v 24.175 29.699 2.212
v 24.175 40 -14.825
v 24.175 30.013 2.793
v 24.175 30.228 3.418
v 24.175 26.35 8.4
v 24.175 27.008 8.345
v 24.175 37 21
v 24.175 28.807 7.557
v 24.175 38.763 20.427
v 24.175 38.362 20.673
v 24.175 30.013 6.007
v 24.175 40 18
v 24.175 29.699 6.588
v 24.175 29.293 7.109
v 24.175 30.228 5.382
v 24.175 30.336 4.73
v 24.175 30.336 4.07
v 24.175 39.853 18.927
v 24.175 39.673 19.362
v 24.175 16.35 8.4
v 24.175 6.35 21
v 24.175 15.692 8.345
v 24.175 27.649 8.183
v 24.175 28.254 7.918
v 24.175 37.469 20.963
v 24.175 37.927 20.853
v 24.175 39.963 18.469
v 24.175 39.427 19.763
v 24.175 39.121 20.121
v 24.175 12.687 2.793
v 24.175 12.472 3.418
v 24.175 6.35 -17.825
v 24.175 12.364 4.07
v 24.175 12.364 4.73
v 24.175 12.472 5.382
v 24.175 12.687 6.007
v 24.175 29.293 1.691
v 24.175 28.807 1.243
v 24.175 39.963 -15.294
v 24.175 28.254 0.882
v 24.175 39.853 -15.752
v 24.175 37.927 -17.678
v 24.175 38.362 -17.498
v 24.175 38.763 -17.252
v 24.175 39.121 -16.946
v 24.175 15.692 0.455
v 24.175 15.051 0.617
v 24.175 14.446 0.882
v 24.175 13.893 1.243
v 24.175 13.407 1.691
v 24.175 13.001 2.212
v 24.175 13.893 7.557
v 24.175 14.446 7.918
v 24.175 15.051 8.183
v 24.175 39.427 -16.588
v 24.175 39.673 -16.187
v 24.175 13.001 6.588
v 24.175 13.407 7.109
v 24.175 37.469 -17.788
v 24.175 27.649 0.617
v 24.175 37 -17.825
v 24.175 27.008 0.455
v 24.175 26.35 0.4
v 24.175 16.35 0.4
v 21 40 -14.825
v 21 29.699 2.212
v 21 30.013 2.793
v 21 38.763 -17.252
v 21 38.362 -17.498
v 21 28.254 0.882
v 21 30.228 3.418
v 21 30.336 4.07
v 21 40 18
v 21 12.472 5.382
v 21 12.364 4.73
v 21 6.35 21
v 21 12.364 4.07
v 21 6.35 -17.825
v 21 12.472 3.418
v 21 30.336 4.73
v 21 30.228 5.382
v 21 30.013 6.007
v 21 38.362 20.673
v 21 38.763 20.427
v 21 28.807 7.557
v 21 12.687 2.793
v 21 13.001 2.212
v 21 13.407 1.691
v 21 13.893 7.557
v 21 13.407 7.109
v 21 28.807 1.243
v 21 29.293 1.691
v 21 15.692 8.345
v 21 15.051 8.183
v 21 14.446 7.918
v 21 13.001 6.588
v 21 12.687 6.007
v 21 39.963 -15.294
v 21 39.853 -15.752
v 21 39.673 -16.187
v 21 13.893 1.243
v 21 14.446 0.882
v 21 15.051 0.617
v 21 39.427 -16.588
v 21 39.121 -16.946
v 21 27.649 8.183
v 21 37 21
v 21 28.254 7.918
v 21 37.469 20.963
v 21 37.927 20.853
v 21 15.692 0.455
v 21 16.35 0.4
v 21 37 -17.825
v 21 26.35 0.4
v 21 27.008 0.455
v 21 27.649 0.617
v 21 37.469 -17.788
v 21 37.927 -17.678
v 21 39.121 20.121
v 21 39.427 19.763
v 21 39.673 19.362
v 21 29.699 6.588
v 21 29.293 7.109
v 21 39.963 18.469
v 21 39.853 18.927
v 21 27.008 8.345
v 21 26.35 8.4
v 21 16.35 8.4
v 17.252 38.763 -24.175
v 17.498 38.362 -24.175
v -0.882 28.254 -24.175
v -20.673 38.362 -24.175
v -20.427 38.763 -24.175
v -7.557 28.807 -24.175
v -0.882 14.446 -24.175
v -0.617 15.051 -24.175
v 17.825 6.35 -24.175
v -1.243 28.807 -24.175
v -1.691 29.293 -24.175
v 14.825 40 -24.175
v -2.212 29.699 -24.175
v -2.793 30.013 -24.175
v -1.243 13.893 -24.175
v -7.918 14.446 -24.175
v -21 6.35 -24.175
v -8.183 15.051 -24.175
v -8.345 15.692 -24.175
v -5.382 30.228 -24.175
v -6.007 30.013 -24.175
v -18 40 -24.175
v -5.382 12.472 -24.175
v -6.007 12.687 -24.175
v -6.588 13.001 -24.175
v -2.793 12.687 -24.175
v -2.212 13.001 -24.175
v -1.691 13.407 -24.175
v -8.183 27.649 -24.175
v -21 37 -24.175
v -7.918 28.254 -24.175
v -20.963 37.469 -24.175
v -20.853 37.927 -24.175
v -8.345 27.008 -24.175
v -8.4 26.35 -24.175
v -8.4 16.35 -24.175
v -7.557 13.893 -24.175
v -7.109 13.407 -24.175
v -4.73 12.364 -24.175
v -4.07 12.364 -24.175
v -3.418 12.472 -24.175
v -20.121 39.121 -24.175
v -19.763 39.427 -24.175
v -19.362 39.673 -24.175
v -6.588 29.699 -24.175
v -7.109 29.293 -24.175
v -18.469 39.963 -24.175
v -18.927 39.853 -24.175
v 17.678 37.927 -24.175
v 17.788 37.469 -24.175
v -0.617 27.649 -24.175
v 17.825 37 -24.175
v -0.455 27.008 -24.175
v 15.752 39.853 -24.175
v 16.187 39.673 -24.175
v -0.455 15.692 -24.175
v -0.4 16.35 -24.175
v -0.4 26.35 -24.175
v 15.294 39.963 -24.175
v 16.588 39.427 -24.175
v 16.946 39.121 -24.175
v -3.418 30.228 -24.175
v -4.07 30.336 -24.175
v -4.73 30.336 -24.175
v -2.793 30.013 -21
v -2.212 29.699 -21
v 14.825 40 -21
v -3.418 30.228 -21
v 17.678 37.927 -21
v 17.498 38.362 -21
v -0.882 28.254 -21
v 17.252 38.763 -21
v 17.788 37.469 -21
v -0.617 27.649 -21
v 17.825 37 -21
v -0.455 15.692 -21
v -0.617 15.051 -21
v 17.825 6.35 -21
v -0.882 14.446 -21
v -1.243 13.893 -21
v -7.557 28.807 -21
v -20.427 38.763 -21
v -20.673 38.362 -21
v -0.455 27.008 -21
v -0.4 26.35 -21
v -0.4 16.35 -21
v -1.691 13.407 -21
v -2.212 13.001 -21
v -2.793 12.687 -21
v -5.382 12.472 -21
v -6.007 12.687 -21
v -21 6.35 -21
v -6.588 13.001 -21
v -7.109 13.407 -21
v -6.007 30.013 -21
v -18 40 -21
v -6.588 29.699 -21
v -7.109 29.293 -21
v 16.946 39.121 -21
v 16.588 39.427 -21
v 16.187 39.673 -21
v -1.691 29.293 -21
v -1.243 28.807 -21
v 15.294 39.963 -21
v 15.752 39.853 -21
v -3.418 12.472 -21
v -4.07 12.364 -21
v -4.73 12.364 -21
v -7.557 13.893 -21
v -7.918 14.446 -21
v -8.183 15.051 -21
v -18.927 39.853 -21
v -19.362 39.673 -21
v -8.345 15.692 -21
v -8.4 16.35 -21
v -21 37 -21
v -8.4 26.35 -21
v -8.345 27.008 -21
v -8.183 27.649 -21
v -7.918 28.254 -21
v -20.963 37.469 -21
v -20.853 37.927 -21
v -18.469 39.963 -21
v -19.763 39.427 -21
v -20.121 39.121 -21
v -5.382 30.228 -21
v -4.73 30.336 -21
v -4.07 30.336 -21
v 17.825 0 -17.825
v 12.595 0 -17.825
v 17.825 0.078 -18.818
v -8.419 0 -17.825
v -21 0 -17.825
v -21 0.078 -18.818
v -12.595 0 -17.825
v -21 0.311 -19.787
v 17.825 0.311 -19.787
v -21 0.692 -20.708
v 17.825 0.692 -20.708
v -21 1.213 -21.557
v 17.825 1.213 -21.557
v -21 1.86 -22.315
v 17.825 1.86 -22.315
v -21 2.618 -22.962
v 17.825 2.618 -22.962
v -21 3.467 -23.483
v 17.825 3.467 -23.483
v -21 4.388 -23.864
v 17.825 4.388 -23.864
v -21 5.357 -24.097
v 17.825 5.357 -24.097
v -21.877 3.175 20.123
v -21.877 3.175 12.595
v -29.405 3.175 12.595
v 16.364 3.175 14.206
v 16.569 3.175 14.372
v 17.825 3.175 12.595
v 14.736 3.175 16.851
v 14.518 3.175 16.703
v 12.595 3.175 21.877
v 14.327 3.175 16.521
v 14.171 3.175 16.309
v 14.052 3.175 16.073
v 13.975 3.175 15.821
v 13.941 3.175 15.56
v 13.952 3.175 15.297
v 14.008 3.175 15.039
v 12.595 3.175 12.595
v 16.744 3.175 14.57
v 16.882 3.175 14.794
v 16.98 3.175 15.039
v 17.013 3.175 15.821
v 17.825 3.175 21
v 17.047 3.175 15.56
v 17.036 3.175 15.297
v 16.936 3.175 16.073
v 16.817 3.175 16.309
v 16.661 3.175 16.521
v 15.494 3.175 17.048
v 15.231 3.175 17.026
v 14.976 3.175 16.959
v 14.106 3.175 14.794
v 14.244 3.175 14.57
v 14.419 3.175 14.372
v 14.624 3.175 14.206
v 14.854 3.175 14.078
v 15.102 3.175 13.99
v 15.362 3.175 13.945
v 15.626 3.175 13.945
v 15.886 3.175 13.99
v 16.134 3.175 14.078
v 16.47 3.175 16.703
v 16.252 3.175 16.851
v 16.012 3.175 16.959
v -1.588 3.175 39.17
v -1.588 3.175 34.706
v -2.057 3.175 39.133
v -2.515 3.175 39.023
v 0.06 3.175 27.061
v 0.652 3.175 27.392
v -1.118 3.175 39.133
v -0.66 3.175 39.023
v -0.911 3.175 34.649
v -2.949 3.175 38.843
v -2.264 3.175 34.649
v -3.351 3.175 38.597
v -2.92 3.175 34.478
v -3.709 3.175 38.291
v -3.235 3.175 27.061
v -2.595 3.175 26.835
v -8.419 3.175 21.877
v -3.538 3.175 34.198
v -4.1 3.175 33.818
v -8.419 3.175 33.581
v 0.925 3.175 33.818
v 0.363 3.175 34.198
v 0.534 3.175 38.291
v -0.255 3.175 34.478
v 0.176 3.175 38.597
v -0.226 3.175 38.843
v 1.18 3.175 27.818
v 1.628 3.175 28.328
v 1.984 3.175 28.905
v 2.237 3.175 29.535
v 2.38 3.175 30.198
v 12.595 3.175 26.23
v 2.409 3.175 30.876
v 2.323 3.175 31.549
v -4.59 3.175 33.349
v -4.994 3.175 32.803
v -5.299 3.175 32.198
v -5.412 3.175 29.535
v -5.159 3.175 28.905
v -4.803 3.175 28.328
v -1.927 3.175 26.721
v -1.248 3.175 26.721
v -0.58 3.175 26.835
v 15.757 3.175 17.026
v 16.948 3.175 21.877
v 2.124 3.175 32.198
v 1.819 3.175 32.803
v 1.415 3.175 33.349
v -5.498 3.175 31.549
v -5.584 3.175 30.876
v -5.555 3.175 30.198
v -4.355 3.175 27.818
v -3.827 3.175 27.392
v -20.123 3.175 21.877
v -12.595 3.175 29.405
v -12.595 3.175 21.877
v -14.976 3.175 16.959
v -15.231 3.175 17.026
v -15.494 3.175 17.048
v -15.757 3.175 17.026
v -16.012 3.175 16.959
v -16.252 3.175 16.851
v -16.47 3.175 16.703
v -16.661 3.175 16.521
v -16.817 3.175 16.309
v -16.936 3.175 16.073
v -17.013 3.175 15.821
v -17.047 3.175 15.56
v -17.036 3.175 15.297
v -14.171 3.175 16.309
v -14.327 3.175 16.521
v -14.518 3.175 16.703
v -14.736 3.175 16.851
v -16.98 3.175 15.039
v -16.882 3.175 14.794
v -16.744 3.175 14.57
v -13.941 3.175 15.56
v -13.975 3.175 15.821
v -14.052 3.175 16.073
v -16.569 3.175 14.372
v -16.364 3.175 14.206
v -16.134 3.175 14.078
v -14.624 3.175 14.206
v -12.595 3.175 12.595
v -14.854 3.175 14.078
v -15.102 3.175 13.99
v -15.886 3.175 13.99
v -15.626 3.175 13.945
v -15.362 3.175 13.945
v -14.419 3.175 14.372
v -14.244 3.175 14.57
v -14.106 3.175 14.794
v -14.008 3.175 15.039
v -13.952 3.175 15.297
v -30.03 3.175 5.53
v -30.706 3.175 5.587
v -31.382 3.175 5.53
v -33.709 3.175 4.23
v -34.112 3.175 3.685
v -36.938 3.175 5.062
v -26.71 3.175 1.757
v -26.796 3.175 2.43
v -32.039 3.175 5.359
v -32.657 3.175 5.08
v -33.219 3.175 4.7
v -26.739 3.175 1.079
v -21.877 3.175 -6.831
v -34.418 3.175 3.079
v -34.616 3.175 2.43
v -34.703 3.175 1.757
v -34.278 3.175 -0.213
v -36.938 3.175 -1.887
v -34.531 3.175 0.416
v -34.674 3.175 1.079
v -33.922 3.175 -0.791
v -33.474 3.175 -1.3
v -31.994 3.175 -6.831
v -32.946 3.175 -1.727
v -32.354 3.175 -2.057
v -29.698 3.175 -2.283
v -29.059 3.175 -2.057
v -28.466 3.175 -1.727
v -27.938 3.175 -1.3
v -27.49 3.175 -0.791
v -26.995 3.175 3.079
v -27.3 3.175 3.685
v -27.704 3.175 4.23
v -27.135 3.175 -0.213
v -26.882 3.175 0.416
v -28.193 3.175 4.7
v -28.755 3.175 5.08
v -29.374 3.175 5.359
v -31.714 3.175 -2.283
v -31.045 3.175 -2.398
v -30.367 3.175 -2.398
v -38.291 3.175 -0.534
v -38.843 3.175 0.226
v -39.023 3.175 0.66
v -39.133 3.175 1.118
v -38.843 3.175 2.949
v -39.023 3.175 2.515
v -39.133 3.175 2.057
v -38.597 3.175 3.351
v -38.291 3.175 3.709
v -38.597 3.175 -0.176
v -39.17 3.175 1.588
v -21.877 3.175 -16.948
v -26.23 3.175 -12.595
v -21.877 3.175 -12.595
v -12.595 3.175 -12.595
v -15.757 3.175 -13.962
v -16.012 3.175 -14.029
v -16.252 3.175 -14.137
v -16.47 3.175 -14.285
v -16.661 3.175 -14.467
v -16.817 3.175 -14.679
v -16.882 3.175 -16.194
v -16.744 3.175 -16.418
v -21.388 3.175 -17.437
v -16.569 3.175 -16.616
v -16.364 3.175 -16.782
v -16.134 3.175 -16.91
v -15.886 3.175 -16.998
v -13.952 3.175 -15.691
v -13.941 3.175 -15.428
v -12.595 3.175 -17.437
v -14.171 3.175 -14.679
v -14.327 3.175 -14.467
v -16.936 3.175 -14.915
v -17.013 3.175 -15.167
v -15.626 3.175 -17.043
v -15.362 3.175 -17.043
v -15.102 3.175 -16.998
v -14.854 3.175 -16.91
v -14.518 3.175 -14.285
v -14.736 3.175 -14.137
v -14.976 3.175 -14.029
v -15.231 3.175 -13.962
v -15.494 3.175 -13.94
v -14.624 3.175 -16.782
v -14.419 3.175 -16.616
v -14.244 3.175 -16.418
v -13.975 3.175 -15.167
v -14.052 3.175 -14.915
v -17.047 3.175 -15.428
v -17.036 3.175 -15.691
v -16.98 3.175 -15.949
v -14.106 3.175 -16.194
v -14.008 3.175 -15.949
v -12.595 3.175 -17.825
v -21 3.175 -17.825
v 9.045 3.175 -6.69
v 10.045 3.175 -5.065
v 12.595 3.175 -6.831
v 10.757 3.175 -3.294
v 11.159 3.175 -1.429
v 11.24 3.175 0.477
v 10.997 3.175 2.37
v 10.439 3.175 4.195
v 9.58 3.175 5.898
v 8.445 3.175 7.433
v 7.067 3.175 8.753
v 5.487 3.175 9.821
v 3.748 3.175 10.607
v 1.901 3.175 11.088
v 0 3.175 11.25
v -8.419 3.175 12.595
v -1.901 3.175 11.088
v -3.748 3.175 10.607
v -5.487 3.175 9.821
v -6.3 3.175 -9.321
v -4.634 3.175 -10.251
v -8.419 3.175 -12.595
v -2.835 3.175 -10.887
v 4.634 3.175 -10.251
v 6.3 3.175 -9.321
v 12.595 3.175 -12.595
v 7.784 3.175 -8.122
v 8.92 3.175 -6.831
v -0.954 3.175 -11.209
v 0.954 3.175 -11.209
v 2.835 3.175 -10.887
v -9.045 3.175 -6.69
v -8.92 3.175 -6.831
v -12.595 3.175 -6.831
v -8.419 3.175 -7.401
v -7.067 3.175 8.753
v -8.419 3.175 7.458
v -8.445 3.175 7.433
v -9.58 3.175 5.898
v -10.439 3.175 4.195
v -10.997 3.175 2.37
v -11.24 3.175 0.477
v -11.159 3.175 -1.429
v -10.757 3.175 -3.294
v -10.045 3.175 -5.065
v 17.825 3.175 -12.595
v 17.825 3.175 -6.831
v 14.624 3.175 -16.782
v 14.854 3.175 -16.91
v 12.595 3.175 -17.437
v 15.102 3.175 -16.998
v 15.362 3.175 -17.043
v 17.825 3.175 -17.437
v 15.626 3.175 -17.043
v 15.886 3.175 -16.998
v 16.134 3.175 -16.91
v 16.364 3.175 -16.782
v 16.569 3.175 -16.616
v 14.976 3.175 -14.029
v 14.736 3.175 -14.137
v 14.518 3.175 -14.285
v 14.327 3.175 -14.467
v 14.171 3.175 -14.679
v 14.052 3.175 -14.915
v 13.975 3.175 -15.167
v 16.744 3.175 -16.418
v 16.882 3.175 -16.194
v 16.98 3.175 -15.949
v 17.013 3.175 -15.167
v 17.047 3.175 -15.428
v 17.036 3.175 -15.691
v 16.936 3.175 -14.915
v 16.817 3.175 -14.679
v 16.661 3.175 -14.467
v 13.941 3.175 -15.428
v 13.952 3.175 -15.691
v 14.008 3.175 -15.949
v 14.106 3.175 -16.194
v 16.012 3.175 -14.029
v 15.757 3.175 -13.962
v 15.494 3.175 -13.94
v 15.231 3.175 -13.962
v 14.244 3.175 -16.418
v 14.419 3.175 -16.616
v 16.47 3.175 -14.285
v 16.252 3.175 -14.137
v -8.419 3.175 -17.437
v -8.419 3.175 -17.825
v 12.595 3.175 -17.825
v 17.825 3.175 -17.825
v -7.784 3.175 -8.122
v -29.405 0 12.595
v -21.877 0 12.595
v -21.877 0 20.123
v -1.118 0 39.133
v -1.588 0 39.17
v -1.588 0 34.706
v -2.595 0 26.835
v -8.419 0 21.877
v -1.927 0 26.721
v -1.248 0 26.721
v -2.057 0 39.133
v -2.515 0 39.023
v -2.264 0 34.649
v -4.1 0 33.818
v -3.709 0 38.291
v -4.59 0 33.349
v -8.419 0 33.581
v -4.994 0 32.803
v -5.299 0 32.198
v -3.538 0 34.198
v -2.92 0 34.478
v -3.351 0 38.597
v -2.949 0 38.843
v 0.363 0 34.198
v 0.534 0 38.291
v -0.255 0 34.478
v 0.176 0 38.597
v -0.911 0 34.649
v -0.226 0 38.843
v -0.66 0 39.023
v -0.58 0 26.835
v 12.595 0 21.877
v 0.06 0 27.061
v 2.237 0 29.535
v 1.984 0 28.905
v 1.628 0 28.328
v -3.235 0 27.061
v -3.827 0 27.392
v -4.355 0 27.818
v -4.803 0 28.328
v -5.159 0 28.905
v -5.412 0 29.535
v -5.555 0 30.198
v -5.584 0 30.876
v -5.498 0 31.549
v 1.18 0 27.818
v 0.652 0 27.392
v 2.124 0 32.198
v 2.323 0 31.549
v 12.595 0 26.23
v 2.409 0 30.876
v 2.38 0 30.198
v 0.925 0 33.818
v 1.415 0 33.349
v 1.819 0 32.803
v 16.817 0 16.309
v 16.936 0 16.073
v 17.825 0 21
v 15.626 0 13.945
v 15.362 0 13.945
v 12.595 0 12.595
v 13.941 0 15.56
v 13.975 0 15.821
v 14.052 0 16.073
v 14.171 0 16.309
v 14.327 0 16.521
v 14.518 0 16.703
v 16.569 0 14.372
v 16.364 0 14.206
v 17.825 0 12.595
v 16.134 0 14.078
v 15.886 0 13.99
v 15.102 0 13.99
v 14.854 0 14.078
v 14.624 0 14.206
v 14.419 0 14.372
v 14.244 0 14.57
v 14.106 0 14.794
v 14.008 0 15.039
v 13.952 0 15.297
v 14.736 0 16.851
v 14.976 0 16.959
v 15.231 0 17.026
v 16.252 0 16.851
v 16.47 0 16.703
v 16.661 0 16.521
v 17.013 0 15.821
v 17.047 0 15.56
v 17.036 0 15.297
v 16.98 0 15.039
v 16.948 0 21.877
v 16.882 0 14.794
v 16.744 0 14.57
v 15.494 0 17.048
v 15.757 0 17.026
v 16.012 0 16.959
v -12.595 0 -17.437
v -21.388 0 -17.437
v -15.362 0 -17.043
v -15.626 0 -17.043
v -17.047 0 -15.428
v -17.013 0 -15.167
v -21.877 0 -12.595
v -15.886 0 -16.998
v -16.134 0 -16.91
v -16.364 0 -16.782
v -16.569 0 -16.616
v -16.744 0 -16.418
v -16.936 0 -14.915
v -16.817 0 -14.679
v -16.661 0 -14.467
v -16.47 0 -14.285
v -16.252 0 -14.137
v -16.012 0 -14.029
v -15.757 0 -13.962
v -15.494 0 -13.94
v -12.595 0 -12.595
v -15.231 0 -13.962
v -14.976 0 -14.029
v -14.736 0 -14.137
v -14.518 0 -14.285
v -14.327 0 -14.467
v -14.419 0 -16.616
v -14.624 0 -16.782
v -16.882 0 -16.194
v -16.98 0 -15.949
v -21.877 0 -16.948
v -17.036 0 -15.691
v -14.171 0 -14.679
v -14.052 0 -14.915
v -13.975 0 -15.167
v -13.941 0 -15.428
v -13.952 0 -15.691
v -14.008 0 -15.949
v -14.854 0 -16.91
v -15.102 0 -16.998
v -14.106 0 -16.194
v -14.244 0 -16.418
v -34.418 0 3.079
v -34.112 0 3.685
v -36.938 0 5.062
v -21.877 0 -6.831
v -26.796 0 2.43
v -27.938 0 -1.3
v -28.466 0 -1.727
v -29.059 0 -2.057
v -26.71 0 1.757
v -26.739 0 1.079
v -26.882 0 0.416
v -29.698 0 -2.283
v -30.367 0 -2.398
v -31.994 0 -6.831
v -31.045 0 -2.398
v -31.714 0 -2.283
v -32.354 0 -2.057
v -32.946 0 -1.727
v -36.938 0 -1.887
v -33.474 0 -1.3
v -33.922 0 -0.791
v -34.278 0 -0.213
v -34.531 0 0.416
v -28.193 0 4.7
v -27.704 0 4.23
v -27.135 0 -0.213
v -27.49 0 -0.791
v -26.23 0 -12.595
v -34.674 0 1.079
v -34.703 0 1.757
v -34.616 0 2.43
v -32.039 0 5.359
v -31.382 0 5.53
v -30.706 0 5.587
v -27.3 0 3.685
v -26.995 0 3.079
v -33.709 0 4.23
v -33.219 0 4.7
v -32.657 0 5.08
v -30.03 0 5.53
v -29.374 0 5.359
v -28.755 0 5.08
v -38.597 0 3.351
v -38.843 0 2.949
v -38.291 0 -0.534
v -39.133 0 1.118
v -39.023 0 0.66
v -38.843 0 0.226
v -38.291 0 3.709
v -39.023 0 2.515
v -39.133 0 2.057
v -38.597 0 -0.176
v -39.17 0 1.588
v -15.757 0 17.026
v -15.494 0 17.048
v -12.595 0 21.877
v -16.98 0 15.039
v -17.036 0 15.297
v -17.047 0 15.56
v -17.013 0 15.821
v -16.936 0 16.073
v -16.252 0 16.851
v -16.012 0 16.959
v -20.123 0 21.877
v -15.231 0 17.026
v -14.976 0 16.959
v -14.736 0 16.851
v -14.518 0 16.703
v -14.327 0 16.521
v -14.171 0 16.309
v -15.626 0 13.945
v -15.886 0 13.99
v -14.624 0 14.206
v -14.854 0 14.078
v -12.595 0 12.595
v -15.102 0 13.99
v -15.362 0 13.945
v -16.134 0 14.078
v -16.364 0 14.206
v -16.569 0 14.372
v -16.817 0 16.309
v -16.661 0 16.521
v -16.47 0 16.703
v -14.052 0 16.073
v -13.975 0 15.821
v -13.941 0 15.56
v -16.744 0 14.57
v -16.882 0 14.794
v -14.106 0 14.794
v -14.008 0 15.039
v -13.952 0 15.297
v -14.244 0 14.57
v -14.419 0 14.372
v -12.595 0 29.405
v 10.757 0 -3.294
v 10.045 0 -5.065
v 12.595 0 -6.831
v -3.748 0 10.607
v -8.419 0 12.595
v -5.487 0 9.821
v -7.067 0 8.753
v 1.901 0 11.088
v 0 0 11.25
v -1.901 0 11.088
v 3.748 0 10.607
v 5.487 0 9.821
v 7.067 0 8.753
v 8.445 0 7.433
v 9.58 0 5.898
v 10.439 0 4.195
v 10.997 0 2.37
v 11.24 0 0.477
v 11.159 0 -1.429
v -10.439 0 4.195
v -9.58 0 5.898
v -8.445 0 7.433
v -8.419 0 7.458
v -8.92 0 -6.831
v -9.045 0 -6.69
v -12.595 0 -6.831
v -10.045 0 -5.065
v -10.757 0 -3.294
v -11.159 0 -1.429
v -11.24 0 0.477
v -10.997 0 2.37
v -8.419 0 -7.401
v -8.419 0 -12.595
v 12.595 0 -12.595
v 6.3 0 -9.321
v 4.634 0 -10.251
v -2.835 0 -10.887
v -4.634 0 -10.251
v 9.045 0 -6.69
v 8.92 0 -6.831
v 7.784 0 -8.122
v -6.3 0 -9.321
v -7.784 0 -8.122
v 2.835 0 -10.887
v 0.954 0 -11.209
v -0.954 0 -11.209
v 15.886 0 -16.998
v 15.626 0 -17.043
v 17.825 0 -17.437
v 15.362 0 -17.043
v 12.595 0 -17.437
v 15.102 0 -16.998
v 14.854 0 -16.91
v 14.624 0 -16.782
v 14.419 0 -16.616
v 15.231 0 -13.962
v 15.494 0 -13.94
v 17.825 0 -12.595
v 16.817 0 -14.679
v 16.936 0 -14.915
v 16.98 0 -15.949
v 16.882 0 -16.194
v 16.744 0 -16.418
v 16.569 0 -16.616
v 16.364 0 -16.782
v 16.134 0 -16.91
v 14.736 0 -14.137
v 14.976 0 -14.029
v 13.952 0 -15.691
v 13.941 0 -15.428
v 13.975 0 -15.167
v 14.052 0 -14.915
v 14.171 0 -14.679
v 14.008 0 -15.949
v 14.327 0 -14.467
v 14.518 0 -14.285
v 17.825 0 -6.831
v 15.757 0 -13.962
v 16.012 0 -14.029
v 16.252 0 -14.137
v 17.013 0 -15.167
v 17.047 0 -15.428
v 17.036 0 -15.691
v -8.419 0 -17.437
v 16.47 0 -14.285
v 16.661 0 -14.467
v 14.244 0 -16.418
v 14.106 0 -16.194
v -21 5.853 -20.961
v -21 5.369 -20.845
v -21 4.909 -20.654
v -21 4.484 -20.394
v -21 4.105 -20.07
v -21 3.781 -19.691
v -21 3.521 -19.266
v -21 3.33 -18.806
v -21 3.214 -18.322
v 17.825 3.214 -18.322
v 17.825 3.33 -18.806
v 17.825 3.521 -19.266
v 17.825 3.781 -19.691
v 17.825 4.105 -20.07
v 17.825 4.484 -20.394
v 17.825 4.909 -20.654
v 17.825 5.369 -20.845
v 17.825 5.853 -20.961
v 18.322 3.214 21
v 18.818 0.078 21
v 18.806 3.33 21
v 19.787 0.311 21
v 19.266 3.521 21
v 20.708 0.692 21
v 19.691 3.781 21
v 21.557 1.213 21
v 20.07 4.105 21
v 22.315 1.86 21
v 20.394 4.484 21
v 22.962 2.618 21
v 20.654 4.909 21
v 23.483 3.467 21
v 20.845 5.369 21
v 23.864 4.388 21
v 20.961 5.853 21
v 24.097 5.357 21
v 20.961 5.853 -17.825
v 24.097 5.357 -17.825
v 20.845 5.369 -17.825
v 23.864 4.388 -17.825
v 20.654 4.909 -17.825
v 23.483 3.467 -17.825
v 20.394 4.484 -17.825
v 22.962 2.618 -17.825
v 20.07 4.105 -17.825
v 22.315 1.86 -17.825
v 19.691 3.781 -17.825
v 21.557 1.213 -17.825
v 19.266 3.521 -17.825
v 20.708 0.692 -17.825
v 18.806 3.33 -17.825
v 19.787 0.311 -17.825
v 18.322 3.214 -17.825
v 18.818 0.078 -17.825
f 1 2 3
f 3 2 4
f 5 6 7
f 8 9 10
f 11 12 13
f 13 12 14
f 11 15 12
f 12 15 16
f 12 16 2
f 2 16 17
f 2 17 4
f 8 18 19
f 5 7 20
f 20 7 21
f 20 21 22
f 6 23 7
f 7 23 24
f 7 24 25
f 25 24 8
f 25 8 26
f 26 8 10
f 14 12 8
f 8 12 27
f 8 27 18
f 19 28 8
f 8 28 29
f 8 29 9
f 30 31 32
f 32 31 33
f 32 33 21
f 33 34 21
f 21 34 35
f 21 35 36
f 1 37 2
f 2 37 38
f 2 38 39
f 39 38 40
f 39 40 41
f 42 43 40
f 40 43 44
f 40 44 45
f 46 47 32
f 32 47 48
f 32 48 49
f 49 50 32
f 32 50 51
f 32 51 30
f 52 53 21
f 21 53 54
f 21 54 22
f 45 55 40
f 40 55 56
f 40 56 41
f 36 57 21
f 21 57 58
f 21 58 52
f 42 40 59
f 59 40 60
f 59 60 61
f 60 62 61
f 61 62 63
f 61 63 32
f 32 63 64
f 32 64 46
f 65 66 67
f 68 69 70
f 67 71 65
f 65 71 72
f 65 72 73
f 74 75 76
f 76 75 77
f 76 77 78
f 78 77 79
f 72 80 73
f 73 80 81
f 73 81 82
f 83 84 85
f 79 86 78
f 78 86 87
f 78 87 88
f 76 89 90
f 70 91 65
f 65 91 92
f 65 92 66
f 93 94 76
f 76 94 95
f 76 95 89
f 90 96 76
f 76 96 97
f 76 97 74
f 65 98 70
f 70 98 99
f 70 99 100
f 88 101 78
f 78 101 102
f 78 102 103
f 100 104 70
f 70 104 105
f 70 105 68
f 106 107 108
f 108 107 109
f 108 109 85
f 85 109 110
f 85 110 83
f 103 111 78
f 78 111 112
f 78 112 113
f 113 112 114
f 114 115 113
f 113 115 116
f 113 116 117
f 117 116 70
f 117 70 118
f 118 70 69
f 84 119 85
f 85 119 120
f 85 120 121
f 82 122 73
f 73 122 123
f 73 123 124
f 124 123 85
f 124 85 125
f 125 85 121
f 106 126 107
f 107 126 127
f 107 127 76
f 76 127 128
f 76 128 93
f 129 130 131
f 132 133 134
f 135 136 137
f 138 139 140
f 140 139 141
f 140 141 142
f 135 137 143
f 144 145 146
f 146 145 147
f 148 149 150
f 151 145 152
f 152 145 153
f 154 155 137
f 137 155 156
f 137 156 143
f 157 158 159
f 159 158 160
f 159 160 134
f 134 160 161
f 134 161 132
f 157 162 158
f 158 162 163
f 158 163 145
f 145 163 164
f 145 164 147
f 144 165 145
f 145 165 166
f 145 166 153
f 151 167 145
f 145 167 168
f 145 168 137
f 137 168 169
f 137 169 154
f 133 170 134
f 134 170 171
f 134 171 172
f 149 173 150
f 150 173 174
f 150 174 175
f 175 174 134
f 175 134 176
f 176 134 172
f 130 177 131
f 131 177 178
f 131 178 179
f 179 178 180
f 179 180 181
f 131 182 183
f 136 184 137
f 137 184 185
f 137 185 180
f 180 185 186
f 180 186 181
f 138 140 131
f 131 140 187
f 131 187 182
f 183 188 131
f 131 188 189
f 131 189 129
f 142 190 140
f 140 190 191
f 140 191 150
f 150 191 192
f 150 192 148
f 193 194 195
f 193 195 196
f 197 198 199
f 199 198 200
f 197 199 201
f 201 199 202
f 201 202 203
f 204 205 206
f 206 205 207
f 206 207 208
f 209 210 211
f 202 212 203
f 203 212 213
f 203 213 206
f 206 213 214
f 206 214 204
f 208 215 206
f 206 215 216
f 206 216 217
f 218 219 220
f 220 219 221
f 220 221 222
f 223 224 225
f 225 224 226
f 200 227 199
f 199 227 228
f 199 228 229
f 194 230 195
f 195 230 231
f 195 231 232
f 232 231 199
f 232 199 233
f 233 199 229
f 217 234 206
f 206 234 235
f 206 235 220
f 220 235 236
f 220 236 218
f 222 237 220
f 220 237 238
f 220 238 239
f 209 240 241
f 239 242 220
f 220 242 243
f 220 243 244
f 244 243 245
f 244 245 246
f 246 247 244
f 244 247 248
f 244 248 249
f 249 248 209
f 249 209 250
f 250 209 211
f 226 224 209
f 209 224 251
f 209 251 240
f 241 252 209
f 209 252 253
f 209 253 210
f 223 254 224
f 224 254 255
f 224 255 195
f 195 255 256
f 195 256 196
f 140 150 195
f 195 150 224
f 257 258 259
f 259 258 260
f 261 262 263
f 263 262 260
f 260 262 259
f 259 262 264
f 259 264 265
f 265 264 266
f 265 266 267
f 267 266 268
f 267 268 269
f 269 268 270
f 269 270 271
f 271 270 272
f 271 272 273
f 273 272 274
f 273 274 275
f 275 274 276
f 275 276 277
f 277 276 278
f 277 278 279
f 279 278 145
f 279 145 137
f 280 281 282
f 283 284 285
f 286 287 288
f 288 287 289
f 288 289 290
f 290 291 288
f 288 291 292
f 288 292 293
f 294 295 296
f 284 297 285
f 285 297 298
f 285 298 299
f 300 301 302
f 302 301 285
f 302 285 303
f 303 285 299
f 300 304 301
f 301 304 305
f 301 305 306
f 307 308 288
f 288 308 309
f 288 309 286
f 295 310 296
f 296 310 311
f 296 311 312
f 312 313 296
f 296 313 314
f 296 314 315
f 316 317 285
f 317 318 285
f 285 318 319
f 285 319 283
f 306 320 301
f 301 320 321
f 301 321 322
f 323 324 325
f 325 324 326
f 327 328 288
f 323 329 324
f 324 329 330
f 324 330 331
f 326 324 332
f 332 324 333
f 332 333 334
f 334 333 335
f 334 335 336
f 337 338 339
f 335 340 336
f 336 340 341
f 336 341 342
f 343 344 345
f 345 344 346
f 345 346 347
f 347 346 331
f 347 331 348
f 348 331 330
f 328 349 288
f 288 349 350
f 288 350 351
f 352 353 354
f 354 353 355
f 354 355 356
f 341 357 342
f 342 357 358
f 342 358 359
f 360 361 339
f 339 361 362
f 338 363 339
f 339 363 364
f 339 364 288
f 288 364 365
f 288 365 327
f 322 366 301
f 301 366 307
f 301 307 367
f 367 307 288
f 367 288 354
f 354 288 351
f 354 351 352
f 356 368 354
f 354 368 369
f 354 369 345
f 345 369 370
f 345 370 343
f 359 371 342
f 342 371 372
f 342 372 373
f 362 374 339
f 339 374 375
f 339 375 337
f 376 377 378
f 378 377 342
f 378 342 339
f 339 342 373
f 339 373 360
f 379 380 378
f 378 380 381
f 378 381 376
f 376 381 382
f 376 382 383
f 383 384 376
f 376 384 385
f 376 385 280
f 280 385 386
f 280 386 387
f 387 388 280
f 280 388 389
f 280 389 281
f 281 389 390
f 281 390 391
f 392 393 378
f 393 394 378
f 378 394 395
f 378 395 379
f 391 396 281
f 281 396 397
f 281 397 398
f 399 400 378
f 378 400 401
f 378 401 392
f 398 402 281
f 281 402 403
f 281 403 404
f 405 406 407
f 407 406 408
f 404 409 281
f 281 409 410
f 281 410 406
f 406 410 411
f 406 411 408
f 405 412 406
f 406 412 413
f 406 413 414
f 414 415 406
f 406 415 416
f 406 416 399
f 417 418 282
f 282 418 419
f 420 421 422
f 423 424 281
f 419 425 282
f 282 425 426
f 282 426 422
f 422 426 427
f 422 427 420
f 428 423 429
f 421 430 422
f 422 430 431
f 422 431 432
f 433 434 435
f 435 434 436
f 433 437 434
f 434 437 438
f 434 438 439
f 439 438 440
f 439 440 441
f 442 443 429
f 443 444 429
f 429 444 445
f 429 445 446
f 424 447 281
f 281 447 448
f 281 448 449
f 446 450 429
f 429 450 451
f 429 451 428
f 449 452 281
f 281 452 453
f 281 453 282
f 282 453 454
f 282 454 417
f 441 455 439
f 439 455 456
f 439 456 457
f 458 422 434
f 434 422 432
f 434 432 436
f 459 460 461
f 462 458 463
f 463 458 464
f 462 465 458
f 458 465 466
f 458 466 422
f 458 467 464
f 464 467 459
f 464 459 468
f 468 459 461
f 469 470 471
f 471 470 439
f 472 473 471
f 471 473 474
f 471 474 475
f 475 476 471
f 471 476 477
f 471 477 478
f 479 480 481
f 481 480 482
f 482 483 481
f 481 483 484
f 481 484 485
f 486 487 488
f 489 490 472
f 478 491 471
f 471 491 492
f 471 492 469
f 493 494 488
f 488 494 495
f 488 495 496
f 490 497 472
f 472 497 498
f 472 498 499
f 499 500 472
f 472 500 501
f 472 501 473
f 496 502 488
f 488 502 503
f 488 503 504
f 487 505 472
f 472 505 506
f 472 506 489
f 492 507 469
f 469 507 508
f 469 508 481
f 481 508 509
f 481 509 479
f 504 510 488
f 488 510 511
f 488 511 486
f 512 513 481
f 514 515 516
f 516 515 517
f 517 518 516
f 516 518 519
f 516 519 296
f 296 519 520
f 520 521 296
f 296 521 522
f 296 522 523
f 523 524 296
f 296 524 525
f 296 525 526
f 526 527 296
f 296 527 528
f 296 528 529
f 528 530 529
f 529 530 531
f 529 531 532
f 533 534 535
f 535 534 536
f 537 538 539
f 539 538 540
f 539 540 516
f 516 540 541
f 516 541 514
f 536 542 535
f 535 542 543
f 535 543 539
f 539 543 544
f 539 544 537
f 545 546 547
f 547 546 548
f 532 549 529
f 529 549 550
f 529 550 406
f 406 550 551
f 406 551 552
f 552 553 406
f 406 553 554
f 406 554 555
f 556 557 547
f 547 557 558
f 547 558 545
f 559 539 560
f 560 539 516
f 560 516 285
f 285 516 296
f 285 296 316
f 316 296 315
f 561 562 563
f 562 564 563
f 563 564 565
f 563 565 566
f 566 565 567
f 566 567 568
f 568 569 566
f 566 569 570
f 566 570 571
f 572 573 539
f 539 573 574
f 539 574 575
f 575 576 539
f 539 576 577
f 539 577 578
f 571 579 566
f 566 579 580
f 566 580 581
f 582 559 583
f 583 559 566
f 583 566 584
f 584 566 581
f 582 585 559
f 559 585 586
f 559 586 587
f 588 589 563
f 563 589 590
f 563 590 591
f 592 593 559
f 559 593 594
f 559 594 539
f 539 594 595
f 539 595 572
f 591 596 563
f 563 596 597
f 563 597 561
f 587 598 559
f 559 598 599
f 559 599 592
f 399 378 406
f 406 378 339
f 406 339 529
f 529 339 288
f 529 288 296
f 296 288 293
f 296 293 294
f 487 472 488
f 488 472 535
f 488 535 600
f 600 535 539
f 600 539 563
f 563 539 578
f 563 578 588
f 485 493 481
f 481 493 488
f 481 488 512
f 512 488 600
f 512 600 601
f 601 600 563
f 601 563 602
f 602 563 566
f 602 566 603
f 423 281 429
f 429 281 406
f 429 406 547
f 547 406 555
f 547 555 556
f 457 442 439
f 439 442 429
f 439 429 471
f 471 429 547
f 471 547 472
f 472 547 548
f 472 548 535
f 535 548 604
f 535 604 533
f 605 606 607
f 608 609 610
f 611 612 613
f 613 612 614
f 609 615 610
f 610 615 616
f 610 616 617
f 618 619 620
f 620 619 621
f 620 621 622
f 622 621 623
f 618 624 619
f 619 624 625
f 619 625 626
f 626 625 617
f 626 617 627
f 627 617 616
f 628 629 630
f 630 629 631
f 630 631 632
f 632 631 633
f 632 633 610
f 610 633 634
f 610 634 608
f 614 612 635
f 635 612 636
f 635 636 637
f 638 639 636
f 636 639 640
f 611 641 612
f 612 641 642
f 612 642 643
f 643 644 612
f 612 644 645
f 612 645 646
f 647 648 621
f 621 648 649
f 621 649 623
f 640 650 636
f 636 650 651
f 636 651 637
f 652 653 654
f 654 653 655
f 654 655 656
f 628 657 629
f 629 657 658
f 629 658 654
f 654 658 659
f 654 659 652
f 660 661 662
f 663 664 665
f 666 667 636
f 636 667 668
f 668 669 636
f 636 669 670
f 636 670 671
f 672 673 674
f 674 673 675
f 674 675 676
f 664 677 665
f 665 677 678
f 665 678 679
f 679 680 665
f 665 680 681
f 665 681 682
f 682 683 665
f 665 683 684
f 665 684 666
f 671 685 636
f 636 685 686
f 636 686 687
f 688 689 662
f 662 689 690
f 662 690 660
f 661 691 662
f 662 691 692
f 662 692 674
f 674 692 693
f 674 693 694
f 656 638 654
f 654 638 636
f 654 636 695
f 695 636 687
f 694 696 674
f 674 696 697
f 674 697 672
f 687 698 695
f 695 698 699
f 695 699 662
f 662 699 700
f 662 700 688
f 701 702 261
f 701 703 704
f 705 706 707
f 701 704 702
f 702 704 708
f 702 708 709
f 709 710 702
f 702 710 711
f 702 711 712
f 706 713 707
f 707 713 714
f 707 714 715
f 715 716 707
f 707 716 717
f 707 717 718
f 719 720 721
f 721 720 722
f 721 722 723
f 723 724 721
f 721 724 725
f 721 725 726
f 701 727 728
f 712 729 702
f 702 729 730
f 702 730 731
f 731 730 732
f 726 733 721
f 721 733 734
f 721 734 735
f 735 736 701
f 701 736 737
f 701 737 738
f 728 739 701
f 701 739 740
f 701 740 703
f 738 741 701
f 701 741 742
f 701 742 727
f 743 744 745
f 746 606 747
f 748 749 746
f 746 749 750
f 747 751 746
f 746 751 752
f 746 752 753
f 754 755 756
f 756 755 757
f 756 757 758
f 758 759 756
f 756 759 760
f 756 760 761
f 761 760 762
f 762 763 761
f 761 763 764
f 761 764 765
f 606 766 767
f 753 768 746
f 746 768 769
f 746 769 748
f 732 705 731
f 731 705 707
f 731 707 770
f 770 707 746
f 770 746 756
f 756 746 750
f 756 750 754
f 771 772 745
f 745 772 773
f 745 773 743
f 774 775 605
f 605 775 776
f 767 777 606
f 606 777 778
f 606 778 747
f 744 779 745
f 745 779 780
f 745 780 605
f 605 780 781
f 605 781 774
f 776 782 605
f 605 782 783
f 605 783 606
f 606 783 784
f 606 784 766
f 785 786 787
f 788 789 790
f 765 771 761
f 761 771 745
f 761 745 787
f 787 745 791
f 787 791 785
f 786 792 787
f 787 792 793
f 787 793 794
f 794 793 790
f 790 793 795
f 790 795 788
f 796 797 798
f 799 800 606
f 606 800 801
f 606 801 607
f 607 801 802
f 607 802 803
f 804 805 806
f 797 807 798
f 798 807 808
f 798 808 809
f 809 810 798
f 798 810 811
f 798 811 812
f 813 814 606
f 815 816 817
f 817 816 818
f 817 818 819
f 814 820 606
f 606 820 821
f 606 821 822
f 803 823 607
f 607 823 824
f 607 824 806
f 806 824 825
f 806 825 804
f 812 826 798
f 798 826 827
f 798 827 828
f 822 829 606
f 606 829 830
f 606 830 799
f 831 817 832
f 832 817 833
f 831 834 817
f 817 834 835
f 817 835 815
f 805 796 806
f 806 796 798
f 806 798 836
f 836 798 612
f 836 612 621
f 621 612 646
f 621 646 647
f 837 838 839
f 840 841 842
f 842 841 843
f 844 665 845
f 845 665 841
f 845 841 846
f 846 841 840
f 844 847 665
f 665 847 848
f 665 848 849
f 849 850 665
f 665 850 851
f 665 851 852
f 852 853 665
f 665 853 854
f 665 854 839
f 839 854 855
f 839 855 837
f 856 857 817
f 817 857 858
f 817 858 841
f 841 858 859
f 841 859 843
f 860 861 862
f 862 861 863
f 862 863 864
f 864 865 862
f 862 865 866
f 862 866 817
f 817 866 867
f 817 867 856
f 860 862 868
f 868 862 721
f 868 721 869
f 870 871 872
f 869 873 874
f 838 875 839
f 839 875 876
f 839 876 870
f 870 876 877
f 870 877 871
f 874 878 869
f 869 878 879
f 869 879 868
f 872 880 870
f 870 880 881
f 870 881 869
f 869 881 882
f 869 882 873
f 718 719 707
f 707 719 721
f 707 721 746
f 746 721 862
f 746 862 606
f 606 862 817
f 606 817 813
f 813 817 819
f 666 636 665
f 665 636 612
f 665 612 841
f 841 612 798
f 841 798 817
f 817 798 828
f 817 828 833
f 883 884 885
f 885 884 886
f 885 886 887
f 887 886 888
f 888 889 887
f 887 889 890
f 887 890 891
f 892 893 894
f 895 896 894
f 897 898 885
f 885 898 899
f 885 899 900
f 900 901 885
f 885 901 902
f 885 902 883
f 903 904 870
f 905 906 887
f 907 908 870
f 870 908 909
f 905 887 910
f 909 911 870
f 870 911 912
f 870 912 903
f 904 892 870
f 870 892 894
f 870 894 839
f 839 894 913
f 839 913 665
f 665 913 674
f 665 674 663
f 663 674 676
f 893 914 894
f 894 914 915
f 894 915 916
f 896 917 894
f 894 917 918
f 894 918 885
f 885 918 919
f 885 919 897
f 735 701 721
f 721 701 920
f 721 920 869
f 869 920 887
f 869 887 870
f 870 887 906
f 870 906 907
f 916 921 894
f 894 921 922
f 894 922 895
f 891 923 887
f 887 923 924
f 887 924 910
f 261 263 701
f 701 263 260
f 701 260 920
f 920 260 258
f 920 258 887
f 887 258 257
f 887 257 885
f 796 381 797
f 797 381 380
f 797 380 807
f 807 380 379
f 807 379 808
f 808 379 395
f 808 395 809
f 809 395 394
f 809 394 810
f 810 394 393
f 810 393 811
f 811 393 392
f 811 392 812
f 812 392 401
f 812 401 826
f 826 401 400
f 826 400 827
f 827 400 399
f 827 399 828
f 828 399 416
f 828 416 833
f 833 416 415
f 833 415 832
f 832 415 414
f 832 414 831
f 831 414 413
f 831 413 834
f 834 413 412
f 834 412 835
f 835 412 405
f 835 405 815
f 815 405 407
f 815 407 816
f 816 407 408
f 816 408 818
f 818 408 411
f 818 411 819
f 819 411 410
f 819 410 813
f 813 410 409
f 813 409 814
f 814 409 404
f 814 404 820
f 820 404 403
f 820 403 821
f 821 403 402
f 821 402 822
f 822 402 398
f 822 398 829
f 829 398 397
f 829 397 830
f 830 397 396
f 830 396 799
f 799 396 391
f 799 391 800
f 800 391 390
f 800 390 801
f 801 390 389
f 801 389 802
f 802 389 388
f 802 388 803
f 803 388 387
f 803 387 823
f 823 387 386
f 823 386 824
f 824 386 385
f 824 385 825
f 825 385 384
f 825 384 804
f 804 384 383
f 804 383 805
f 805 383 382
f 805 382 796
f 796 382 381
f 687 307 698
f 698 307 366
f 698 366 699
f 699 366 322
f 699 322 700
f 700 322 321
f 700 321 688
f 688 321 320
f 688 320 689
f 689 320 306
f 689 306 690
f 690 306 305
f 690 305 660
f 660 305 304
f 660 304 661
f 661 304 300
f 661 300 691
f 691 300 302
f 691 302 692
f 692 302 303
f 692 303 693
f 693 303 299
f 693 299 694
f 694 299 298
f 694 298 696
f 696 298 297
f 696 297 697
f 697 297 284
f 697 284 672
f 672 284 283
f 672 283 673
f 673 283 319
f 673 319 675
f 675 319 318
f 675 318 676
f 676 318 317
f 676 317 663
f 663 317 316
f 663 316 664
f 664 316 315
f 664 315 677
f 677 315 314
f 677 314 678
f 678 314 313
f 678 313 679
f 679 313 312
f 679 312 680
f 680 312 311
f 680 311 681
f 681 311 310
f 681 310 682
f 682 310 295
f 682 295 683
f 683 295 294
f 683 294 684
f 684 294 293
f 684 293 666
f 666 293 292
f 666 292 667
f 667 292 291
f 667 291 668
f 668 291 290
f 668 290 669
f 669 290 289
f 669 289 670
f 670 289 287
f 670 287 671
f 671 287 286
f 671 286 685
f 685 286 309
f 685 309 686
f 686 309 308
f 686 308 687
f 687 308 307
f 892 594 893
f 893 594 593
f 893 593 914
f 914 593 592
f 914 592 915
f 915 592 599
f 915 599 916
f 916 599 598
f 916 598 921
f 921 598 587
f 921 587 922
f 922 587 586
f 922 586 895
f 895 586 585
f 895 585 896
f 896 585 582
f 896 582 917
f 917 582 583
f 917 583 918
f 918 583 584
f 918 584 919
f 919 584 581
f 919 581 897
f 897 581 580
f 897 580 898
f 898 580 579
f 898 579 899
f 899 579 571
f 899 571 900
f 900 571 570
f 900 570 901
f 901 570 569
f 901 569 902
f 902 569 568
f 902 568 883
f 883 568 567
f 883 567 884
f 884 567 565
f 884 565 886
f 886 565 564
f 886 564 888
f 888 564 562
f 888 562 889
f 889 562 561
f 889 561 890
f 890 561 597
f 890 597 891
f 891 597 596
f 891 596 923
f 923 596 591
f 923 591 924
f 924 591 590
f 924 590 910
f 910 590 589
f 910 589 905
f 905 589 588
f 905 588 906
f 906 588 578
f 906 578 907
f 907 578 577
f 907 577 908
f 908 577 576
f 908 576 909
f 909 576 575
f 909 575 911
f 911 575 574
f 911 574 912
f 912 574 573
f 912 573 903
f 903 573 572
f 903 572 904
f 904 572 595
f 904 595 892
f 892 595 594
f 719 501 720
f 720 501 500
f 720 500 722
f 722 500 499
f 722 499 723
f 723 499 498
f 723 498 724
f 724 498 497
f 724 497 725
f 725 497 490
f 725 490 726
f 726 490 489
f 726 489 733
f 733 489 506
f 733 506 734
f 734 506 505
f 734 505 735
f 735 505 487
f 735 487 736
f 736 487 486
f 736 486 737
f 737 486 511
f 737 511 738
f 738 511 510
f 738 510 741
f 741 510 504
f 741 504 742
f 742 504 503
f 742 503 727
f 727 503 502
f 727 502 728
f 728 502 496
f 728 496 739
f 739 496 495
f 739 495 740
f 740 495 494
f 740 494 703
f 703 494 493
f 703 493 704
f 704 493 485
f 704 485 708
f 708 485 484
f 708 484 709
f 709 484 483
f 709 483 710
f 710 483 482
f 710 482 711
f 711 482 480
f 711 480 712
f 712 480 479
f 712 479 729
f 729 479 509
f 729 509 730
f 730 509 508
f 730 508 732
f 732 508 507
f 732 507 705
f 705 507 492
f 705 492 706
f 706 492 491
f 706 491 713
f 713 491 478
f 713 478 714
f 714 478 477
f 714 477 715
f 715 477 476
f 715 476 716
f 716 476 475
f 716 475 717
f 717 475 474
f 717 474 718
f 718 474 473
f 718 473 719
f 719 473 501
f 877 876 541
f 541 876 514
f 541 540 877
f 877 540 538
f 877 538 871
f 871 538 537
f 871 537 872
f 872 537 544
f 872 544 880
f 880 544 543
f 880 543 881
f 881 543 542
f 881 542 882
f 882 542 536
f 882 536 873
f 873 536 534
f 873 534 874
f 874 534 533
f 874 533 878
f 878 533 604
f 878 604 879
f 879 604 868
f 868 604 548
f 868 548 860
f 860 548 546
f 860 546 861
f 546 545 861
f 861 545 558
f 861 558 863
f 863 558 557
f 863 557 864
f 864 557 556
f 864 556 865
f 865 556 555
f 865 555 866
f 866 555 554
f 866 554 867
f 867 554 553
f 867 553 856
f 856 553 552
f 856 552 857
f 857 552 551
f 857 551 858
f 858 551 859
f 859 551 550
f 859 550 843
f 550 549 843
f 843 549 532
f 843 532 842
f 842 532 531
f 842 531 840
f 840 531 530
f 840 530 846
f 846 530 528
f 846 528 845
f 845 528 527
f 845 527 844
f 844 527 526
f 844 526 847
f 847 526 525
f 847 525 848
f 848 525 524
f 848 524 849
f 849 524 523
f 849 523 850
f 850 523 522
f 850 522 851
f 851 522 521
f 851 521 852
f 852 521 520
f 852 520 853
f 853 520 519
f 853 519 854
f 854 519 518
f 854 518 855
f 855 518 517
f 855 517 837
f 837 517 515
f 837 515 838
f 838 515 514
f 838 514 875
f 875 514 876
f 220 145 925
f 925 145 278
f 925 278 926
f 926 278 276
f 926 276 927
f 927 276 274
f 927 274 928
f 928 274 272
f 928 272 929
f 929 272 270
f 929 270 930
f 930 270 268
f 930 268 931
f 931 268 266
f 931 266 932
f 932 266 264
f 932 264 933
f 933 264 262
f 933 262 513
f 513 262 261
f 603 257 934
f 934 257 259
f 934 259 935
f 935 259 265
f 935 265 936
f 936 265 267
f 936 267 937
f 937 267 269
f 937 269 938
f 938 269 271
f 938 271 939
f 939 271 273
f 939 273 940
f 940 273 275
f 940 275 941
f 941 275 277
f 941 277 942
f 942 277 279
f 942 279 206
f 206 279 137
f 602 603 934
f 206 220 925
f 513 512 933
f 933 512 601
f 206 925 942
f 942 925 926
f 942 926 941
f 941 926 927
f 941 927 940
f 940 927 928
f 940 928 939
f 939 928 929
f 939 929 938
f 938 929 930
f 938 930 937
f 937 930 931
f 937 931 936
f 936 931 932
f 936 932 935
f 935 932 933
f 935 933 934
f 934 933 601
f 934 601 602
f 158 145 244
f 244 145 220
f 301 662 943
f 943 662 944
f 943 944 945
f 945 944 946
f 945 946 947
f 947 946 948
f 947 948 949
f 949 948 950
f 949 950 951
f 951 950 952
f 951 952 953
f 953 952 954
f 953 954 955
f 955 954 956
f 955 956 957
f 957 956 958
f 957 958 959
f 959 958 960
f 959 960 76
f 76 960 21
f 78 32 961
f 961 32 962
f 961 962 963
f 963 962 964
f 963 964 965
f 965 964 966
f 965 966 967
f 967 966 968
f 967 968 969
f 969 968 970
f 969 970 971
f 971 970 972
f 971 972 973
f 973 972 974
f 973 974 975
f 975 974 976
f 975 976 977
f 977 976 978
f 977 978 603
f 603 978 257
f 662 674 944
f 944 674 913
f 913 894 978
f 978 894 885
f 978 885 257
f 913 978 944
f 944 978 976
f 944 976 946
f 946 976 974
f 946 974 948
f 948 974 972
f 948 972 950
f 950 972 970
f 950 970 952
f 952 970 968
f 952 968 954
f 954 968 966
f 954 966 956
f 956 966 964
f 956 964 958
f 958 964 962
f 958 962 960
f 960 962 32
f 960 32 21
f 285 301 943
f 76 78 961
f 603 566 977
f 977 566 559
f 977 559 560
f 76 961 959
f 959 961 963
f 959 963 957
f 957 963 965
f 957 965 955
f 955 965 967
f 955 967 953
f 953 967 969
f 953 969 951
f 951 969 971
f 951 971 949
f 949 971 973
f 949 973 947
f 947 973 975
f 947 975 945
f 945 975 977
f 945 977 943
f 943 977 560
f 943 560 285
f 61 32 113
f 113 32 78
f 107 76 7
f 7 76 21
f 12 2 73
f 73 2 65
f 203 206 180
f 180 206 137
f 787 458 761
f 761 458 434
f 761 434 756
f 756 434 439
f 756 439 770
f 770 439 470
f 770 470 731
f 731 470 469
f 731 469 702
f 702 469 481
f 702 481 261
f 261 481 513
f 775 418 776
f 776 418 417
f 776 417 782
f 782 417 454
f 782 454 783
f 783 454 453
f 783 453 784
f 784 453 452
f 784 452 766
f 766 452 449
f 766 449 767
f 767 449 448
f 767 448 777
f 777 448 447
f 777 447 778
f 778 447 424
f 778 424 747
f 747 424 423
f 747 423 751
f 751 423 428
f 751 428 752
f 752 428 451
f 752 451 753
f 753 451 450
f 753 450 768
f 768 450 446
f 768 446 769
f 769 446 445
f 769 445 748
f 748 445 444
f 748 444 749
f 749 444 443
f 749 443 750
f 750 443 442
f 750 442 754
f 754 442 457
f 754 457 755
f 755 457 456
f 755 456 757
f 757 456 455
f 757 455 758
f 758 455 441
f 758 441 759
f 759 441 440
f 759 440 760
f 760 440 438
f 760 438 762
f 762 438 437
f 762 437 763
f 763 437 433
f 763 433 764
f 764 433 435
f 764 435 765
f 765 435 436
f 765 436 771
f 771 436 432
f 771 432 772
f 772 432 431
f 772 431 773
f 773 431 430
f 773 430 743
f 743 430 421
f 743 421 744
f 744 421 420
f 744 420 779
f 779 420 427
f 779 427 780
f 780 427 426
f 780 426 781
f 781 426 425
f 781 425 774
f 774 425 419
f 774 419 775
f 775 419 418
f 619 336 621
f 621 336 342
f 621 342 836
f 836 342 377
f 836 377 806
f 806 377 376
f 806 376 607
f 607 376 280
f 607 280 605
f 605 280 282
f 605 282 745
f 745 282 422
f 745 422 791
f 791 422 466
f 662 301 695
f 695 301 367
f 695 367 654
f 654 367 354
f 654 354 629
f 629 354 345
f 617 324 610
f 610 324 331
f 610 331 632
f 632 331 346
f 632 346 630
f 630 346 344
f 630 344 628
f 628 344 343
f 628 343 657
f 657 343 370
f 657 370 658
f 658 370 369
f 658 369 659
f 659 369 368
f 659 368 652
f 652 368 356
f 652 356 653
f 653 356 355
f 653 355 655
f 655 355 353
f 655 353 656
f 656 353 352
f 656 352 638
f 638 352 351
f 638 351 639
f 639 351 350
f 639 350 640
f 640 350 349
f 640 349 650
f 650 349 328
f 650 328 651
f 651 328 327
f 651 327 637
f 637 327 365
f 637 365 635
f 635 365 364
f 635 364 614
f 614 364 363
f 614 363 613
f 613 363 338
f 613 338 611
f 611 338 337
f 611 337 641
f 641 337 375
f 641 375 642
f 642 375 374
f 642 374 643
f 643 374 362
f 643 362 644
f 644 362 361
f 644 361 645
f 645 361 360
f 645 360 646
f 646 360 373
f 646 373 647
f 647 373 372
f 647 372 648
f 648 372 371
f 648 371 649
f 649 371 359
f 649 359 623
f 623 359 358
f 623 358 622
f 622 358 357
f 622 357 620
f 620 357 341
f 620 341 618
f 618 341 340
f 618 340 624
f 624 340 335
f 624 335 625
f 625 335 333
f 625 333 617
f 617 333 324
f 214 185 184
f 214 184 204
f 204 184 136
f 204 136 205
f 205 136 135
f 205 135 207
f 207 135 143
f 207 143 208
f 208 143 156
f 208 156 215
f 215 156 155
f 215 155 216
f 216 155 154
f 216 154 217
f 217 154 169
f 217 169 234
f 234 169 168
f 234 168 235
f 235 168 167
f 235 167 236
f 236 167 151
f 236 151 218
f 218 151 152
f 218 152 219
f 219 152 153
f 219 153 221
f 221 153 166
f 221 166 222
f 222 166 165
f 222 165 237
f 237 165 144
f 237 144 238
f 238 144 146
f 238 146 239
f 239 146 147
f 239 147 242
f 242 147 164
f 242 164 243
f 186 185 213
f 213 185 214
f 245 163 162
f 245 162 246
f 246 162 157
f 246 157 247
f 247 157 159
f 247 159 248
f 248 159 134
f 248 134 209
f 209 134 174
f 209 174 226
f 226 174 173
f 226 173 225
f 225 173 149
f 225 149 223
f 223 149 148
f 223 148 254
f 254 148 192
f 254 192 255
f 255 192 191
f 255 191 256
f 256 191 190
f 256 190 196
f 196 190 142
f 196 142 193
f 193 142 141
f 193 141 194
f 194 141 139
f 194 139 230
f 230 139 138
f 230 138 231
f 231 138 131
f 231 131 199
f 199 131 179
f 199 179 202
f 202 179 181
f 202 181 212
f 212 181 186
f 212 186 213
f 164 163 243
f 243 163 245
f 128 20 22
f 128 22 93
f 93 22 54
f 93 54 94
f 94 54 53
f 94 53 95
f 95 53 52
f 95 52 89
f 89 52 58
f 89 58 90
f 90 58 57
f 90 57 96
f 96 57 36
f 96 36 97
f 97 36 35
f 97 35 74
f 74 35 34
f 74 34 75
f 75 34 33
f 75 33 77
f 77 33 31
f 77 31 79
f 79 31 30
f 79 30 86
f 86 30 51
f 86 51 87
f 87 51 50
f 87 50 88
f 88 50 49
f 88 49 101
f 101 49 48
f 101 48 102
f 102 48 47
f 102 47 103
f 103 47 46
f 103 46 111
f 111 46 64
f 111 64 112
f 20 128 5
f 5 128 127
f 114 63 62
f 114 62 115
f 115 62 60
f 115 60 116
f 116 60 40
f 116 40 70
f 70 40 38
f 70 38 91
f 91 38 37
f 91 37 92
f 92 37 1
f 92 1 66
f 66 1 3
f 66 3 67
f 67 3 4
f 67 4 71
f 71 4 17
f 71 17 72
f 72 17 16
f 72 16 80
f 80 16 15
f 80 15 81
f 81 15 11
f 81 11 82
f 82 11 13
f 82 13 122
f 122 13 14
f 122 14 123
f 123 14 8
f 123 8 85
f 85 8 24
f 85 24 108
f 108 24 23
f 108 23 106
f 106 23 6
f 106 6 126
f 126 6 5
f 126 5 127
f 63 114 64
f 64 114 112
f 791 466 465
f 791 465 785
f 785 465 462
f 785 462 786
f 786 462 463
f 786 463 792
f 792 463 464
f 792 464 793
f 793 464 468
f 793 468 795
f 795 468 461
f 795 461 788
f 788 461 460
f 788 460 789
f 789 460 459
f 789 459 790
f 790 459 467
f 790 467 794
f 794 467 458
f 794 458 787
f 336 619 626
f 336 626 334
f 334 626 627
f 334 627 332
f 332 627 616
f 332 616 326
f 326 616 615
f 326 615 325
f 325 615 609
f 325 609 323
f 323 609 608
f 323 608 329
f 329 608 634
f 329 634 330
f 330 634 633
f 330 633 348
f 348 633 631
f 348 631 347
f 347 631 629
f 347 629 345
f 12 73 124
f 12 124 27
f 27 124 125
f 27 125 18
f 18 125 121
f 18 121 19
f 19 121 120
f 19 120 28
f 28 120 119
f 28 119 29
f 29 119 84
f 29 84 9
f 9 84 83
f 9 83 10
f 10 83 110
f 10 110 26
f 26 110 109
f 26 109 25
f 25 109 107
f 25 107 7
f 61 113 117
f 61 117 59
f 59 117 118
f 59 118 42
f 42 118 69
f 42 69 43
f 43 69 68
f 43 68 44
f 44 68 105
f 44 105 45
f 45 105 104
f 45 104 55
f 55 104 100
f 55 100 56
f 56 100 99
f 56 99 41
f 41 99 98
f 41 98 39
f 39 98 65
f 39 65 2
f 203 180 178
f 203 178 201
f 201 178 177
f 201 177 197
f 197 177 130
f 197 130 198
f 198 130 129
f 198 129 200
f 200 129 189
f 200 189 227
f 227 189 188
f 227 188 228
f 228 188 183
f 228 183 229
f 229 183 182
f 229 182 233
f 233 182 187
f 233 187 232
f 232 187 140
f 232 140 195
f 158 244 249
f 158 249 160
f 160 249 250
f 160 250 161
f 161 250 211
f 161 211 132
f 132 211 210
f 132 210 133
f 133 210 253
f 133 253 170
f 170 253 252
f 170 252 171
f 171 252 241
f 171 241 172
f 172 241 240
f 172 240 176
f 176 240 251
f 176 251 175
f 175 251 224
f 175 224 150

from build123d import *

# Parameters (mm, degrees)
SKETCH2_W                    = 42
SKETCH2_H                    = 42
BOSS_EXTRUDE1_DEPTH          = 3.175
SKETCH3_R                    = 11.25
SKETCH3_R_2                  = 1.554126588
CUT_EXTRUDE1_DEPTH           = 3.175
EDGE_FLANGE3_STRIP_W         = 19.05
EDGE_FLANGE3_STRIP_H         = 3.175
EDGE_FLANGE3_STRIP_CUT_DEPTH = 42
EDGE_FLANGE3_DEPTH           = 42
EDGE_FLANGE4_START           = -24.175
EDGE_FLANGE4_OUTLINE_W       = 3.175
EDGE_FLANGE4_OUTLINE_H       = 6.35
EDGE_FLANGE4_DEPTH           = 6.35
EDGE_FLANGE4_START_2         = -17.825
EDGE_FLANGE4_2_DEPTH         = 38.825
EDGE_FLANGE4_3_DEPTH         = 38.825
SKETCH22_W                   = 3.175
SKETCH22_H                   = 33.65
CUT_EXTRUDE2_DEPTH           = 3.175
SKETCH23_R                   = 4
BOSS_EXTRUDE2_DEPTH          = 3.175
CUT_EXTRUDE3_REACH           = 88.051
FILLET1_R                    = 3


# Read off the part's stored shape, not the designer's step: Edge-Flange4
# Sheet-metal steps are written as plain solids
with BuildPart() as part:
    # Sketch2 → Boss-Extrude1 (new body)
    with BuildSketch(Plane(origin=(0, 0, 0), x_dir=(1, 0, 0), z_dir=(0, 1, 0))):
        Rectangle(SKETCH2_W, SKETCH2_H)
    extrude(amount=BOSS_EXTRUDE1_DEPTH)

    # Sketch3 → Cut-Extrude1 (cut)
    with BuildSketch(Plane(origin=(0, 3.175, 0), x_dir=(1, 0, 0), z_dir=(0, 1, 0))):
        with Locations(Location((0, 0, 0), (0, 0, 270))):
            Circle(SKETCH3_R)
        with Locations(Location((-15.494, 15.494, 0), (0, 0, 270))):
            Circle(SKETCH3_R_2)
        with Locations(Location((15.494, 15.494, 0), (0, 0, 270))):
            Circle(SKETCH3_R_2)
        with Locations(Location((15.494, -15.494, 0), (0, 0, 270))):
            Circle(SKETCH3_R_2)
        with Locations(Location((-15.494, -15.494, 0), (0, 0, 270))):
            Circle(SKETCH3_R_2)
    extrude(amount=-CUT_EXTRUDE1_DEPTH, mode=Mode.SUBTRACT)

    # Edge-Flange3 strip (across the edge) → Edge-Flange3 strip cut (cut)
    with BuildSketch(Plane(origin=(21, 3.175, -21), x_dir=(0, 0, 1), z_dir=(-1, 0, 0))):
        with Locations((-6.35, -1.5875)):
            Rectangle(EDGE_FLANGE3_STRIP_W, EDGE_FLANGE3_STRIP_H)
    extrude(amount=EDGE_FLANGE3_STRIP_CUT_DEPTH, mode=Mode.SUBTRACT)

    # Edge-Flange3 section (across the edge) → Edge-Flange3 (add)
    with BuildSketch(Plane(origin=(21, 3.175, -21), x_dir=(0, 0, 1), z_dir=(-1, 0, 0))):
        with BuildLine():
            Line((-3.175, 3.175), (-3.175, 36.825))
            Line((-3.175, 36.825), (0, 36.825))
            Line((0, 36.825), (0, 3.175))
            ThreePointArc((0, 3.175), (0.92993597, 0.92993597), (3.175, 0))
            Line((3.175, 0), (3.175, -3.175))
            ThreePointArc((3.175, -3.175), (-1.315128061, -1.315128061), (-3.175, 3.175))
        make_face()
    extrude(amount=EDGE_FLANGE3_DEPTH)

    # Edge-Flange4 outline → Edge-Flange4 (cut)
    with BuildSketch(Plane.XY.offset(EDGE_FLANGE4_START)):
        with Locations((19.4125, 3.175)):
            Rectangle(EDGE_FLANGE4_OUTLINE_W, EDGE_FLANGE4_OUTLINE_H)
    extrude(amount=EDGE_FLANGE4_DEPTH, mode=Mode.SUBTRACT)

    # Edge-Flange4 2 outline → Edge-Flange4 2 (cut)
    with BuildSketch(Plane.XY.offset(EDGE_FLANGE4_START_2)):
        with BuildLine():
            ThreePointArc((21, 0.850738685), (19.468500936, 0.216371003), (17.825, 0))
            Line((17.825, 0), (21, 0))
            Line((21, 0), (21, 0.850738685))
        make_face()
    extrude(amount=EDGE_FLANGE4_2_DEPTH, mode=Mode.SUBTRACT)

    # Edge-Flange4 3 outline → Edge-Flange4 3 (add)
    with BuildSketch(Plane.XY.offset(EDGE_FLANGE4_START_2)):
        with BuildLine():
            Line((17.825, 3.175), (21, 3.175))
            Line((21, 3.175), (21, 0.850738685))
            ThreePointArc((21, 0.850738685), (23.324261314, 3.174999999), (24.175, 6.35))
            Line((24.175, 6.35), (24.175, 40))
            Line((24.175, 40), (21, 40))
            Line((21, 40), (21, 6.35))
            ThreePointArc((21, 6.35), (20.07006403, 4.10493597), (17.825, 3.175))
        make_face()
    extrude(amount=EDGE_FLANGE4_3_DEPTH)

    # Sketch22 → Cut-Extrude2 (cut)
    with BuildSketch(Plane(origin=(0, 0, -24.175), x_dir=(-1, 0, 0), z_dir=(0, 0, -1))):
        with Locations((-19.4125, 23.175)):
            Rectangle(SKETCH22_W, SKETCH22_H)
    extrude(amount=-CUT_EXTRUDE2_DEPTH, mode=Mode.SUBTRACT)

    # Sketch23 → Boss-Extrude2 (add)
    # profile 1 of 2: a face of its own
    with BuildSketch(Plane(origin=(0, 3.175, 0), x_dir=(1, 0, 0), z_dir=(0, 1, 0))):
        Polygon((-21, -21), (-21, 17.825), (-40.4125, -1.5875), align=None)
        with Locations(Location((-30.70625, -1.5875, 0), (0, 0, 270))):
            Circle(SKETCH23_R, mode=Mode.SUBTRACT)
    # profile 2 of 2: a face of its own
    with BuildSketch(Plane(origin=(0, 3.175, 0), x_dir=(1, 0, 0), z_dir=(0, 1, 0))):
        Polygon((17.825, -21), (-21, -21), (-1.5875, -40.4125), align=None)
        with Locations(Location((-1.5875, -30.70625, 0), (0, 0, 270))):
            Circle(SKETCH23_R, mode=Mode.SUBTRACT)
    extrude(amount=-BOSS_EXTRUDE2_DEPTH)

    # Sketch24 → Cut-Extrude3 (cut, up to next)
    with BuildSketch(Plane(origin=(0, 0, -24.175), x_dir=(-1, 0, 0), z_dir=(0, 0, -1)), mode=Mode.PRIVATE) as cut_extrude3_sk1:
        with BuildLine():
            Line((0.4, 16.35), (0.4, 26.35))
            ThreePointArc((0.4, 26.35), (4.4, 30.35), (8.4, 26.35))
            Line((8.4, 26.35), (8.4, 16.35))
            ThreePointArc((8.4, 16.35), (4.4, 12.35), (0.4, 16.35))
        make_face()
    cut_extrude3_tool1 = extrude(cut_extrude3_sk1.sketch, amount=-CUT_EXTRUDE3_REACH, mode=Mode.PRIVATE) & part.part
    cut_extrude3 = cut_extrude3_tool1.solids().sort_by_distance((-4.4, 21.35, -24.175))[0]
    add(cut_extrude3, mode=Mode.SUBTRACT)

    # Mirror1: Cut-Extrude3 across plane
    add(cut_extrude3.mirror(Plane(origin=(0, 0, 0), x_dir=(-0.7071067811865478, 2.4649279095086426e-15, 0.7071067811865472), z_dir=(-0.7071067811865475, 2.4649279095086418e-15, -0.7071067811865477))), mode=Mode.SUBTRACT)

    # Fillet1
    fillet1_edges = [part.edges().sort_by_distance(p)[0] for p in [
        (-40.4125, 1.5875, 1.5875),
        (-1.5875, 1.5875, 40.4125),
        (-21, 40, -22.5875),
        (22.5875, 40, 21),
        (22.5875, 40, -17.825),
        (17.825, 40, -22.5875),
    ]]
    fillet(fillet1_edges, radius=FILLET1_R)


solid = part.part
